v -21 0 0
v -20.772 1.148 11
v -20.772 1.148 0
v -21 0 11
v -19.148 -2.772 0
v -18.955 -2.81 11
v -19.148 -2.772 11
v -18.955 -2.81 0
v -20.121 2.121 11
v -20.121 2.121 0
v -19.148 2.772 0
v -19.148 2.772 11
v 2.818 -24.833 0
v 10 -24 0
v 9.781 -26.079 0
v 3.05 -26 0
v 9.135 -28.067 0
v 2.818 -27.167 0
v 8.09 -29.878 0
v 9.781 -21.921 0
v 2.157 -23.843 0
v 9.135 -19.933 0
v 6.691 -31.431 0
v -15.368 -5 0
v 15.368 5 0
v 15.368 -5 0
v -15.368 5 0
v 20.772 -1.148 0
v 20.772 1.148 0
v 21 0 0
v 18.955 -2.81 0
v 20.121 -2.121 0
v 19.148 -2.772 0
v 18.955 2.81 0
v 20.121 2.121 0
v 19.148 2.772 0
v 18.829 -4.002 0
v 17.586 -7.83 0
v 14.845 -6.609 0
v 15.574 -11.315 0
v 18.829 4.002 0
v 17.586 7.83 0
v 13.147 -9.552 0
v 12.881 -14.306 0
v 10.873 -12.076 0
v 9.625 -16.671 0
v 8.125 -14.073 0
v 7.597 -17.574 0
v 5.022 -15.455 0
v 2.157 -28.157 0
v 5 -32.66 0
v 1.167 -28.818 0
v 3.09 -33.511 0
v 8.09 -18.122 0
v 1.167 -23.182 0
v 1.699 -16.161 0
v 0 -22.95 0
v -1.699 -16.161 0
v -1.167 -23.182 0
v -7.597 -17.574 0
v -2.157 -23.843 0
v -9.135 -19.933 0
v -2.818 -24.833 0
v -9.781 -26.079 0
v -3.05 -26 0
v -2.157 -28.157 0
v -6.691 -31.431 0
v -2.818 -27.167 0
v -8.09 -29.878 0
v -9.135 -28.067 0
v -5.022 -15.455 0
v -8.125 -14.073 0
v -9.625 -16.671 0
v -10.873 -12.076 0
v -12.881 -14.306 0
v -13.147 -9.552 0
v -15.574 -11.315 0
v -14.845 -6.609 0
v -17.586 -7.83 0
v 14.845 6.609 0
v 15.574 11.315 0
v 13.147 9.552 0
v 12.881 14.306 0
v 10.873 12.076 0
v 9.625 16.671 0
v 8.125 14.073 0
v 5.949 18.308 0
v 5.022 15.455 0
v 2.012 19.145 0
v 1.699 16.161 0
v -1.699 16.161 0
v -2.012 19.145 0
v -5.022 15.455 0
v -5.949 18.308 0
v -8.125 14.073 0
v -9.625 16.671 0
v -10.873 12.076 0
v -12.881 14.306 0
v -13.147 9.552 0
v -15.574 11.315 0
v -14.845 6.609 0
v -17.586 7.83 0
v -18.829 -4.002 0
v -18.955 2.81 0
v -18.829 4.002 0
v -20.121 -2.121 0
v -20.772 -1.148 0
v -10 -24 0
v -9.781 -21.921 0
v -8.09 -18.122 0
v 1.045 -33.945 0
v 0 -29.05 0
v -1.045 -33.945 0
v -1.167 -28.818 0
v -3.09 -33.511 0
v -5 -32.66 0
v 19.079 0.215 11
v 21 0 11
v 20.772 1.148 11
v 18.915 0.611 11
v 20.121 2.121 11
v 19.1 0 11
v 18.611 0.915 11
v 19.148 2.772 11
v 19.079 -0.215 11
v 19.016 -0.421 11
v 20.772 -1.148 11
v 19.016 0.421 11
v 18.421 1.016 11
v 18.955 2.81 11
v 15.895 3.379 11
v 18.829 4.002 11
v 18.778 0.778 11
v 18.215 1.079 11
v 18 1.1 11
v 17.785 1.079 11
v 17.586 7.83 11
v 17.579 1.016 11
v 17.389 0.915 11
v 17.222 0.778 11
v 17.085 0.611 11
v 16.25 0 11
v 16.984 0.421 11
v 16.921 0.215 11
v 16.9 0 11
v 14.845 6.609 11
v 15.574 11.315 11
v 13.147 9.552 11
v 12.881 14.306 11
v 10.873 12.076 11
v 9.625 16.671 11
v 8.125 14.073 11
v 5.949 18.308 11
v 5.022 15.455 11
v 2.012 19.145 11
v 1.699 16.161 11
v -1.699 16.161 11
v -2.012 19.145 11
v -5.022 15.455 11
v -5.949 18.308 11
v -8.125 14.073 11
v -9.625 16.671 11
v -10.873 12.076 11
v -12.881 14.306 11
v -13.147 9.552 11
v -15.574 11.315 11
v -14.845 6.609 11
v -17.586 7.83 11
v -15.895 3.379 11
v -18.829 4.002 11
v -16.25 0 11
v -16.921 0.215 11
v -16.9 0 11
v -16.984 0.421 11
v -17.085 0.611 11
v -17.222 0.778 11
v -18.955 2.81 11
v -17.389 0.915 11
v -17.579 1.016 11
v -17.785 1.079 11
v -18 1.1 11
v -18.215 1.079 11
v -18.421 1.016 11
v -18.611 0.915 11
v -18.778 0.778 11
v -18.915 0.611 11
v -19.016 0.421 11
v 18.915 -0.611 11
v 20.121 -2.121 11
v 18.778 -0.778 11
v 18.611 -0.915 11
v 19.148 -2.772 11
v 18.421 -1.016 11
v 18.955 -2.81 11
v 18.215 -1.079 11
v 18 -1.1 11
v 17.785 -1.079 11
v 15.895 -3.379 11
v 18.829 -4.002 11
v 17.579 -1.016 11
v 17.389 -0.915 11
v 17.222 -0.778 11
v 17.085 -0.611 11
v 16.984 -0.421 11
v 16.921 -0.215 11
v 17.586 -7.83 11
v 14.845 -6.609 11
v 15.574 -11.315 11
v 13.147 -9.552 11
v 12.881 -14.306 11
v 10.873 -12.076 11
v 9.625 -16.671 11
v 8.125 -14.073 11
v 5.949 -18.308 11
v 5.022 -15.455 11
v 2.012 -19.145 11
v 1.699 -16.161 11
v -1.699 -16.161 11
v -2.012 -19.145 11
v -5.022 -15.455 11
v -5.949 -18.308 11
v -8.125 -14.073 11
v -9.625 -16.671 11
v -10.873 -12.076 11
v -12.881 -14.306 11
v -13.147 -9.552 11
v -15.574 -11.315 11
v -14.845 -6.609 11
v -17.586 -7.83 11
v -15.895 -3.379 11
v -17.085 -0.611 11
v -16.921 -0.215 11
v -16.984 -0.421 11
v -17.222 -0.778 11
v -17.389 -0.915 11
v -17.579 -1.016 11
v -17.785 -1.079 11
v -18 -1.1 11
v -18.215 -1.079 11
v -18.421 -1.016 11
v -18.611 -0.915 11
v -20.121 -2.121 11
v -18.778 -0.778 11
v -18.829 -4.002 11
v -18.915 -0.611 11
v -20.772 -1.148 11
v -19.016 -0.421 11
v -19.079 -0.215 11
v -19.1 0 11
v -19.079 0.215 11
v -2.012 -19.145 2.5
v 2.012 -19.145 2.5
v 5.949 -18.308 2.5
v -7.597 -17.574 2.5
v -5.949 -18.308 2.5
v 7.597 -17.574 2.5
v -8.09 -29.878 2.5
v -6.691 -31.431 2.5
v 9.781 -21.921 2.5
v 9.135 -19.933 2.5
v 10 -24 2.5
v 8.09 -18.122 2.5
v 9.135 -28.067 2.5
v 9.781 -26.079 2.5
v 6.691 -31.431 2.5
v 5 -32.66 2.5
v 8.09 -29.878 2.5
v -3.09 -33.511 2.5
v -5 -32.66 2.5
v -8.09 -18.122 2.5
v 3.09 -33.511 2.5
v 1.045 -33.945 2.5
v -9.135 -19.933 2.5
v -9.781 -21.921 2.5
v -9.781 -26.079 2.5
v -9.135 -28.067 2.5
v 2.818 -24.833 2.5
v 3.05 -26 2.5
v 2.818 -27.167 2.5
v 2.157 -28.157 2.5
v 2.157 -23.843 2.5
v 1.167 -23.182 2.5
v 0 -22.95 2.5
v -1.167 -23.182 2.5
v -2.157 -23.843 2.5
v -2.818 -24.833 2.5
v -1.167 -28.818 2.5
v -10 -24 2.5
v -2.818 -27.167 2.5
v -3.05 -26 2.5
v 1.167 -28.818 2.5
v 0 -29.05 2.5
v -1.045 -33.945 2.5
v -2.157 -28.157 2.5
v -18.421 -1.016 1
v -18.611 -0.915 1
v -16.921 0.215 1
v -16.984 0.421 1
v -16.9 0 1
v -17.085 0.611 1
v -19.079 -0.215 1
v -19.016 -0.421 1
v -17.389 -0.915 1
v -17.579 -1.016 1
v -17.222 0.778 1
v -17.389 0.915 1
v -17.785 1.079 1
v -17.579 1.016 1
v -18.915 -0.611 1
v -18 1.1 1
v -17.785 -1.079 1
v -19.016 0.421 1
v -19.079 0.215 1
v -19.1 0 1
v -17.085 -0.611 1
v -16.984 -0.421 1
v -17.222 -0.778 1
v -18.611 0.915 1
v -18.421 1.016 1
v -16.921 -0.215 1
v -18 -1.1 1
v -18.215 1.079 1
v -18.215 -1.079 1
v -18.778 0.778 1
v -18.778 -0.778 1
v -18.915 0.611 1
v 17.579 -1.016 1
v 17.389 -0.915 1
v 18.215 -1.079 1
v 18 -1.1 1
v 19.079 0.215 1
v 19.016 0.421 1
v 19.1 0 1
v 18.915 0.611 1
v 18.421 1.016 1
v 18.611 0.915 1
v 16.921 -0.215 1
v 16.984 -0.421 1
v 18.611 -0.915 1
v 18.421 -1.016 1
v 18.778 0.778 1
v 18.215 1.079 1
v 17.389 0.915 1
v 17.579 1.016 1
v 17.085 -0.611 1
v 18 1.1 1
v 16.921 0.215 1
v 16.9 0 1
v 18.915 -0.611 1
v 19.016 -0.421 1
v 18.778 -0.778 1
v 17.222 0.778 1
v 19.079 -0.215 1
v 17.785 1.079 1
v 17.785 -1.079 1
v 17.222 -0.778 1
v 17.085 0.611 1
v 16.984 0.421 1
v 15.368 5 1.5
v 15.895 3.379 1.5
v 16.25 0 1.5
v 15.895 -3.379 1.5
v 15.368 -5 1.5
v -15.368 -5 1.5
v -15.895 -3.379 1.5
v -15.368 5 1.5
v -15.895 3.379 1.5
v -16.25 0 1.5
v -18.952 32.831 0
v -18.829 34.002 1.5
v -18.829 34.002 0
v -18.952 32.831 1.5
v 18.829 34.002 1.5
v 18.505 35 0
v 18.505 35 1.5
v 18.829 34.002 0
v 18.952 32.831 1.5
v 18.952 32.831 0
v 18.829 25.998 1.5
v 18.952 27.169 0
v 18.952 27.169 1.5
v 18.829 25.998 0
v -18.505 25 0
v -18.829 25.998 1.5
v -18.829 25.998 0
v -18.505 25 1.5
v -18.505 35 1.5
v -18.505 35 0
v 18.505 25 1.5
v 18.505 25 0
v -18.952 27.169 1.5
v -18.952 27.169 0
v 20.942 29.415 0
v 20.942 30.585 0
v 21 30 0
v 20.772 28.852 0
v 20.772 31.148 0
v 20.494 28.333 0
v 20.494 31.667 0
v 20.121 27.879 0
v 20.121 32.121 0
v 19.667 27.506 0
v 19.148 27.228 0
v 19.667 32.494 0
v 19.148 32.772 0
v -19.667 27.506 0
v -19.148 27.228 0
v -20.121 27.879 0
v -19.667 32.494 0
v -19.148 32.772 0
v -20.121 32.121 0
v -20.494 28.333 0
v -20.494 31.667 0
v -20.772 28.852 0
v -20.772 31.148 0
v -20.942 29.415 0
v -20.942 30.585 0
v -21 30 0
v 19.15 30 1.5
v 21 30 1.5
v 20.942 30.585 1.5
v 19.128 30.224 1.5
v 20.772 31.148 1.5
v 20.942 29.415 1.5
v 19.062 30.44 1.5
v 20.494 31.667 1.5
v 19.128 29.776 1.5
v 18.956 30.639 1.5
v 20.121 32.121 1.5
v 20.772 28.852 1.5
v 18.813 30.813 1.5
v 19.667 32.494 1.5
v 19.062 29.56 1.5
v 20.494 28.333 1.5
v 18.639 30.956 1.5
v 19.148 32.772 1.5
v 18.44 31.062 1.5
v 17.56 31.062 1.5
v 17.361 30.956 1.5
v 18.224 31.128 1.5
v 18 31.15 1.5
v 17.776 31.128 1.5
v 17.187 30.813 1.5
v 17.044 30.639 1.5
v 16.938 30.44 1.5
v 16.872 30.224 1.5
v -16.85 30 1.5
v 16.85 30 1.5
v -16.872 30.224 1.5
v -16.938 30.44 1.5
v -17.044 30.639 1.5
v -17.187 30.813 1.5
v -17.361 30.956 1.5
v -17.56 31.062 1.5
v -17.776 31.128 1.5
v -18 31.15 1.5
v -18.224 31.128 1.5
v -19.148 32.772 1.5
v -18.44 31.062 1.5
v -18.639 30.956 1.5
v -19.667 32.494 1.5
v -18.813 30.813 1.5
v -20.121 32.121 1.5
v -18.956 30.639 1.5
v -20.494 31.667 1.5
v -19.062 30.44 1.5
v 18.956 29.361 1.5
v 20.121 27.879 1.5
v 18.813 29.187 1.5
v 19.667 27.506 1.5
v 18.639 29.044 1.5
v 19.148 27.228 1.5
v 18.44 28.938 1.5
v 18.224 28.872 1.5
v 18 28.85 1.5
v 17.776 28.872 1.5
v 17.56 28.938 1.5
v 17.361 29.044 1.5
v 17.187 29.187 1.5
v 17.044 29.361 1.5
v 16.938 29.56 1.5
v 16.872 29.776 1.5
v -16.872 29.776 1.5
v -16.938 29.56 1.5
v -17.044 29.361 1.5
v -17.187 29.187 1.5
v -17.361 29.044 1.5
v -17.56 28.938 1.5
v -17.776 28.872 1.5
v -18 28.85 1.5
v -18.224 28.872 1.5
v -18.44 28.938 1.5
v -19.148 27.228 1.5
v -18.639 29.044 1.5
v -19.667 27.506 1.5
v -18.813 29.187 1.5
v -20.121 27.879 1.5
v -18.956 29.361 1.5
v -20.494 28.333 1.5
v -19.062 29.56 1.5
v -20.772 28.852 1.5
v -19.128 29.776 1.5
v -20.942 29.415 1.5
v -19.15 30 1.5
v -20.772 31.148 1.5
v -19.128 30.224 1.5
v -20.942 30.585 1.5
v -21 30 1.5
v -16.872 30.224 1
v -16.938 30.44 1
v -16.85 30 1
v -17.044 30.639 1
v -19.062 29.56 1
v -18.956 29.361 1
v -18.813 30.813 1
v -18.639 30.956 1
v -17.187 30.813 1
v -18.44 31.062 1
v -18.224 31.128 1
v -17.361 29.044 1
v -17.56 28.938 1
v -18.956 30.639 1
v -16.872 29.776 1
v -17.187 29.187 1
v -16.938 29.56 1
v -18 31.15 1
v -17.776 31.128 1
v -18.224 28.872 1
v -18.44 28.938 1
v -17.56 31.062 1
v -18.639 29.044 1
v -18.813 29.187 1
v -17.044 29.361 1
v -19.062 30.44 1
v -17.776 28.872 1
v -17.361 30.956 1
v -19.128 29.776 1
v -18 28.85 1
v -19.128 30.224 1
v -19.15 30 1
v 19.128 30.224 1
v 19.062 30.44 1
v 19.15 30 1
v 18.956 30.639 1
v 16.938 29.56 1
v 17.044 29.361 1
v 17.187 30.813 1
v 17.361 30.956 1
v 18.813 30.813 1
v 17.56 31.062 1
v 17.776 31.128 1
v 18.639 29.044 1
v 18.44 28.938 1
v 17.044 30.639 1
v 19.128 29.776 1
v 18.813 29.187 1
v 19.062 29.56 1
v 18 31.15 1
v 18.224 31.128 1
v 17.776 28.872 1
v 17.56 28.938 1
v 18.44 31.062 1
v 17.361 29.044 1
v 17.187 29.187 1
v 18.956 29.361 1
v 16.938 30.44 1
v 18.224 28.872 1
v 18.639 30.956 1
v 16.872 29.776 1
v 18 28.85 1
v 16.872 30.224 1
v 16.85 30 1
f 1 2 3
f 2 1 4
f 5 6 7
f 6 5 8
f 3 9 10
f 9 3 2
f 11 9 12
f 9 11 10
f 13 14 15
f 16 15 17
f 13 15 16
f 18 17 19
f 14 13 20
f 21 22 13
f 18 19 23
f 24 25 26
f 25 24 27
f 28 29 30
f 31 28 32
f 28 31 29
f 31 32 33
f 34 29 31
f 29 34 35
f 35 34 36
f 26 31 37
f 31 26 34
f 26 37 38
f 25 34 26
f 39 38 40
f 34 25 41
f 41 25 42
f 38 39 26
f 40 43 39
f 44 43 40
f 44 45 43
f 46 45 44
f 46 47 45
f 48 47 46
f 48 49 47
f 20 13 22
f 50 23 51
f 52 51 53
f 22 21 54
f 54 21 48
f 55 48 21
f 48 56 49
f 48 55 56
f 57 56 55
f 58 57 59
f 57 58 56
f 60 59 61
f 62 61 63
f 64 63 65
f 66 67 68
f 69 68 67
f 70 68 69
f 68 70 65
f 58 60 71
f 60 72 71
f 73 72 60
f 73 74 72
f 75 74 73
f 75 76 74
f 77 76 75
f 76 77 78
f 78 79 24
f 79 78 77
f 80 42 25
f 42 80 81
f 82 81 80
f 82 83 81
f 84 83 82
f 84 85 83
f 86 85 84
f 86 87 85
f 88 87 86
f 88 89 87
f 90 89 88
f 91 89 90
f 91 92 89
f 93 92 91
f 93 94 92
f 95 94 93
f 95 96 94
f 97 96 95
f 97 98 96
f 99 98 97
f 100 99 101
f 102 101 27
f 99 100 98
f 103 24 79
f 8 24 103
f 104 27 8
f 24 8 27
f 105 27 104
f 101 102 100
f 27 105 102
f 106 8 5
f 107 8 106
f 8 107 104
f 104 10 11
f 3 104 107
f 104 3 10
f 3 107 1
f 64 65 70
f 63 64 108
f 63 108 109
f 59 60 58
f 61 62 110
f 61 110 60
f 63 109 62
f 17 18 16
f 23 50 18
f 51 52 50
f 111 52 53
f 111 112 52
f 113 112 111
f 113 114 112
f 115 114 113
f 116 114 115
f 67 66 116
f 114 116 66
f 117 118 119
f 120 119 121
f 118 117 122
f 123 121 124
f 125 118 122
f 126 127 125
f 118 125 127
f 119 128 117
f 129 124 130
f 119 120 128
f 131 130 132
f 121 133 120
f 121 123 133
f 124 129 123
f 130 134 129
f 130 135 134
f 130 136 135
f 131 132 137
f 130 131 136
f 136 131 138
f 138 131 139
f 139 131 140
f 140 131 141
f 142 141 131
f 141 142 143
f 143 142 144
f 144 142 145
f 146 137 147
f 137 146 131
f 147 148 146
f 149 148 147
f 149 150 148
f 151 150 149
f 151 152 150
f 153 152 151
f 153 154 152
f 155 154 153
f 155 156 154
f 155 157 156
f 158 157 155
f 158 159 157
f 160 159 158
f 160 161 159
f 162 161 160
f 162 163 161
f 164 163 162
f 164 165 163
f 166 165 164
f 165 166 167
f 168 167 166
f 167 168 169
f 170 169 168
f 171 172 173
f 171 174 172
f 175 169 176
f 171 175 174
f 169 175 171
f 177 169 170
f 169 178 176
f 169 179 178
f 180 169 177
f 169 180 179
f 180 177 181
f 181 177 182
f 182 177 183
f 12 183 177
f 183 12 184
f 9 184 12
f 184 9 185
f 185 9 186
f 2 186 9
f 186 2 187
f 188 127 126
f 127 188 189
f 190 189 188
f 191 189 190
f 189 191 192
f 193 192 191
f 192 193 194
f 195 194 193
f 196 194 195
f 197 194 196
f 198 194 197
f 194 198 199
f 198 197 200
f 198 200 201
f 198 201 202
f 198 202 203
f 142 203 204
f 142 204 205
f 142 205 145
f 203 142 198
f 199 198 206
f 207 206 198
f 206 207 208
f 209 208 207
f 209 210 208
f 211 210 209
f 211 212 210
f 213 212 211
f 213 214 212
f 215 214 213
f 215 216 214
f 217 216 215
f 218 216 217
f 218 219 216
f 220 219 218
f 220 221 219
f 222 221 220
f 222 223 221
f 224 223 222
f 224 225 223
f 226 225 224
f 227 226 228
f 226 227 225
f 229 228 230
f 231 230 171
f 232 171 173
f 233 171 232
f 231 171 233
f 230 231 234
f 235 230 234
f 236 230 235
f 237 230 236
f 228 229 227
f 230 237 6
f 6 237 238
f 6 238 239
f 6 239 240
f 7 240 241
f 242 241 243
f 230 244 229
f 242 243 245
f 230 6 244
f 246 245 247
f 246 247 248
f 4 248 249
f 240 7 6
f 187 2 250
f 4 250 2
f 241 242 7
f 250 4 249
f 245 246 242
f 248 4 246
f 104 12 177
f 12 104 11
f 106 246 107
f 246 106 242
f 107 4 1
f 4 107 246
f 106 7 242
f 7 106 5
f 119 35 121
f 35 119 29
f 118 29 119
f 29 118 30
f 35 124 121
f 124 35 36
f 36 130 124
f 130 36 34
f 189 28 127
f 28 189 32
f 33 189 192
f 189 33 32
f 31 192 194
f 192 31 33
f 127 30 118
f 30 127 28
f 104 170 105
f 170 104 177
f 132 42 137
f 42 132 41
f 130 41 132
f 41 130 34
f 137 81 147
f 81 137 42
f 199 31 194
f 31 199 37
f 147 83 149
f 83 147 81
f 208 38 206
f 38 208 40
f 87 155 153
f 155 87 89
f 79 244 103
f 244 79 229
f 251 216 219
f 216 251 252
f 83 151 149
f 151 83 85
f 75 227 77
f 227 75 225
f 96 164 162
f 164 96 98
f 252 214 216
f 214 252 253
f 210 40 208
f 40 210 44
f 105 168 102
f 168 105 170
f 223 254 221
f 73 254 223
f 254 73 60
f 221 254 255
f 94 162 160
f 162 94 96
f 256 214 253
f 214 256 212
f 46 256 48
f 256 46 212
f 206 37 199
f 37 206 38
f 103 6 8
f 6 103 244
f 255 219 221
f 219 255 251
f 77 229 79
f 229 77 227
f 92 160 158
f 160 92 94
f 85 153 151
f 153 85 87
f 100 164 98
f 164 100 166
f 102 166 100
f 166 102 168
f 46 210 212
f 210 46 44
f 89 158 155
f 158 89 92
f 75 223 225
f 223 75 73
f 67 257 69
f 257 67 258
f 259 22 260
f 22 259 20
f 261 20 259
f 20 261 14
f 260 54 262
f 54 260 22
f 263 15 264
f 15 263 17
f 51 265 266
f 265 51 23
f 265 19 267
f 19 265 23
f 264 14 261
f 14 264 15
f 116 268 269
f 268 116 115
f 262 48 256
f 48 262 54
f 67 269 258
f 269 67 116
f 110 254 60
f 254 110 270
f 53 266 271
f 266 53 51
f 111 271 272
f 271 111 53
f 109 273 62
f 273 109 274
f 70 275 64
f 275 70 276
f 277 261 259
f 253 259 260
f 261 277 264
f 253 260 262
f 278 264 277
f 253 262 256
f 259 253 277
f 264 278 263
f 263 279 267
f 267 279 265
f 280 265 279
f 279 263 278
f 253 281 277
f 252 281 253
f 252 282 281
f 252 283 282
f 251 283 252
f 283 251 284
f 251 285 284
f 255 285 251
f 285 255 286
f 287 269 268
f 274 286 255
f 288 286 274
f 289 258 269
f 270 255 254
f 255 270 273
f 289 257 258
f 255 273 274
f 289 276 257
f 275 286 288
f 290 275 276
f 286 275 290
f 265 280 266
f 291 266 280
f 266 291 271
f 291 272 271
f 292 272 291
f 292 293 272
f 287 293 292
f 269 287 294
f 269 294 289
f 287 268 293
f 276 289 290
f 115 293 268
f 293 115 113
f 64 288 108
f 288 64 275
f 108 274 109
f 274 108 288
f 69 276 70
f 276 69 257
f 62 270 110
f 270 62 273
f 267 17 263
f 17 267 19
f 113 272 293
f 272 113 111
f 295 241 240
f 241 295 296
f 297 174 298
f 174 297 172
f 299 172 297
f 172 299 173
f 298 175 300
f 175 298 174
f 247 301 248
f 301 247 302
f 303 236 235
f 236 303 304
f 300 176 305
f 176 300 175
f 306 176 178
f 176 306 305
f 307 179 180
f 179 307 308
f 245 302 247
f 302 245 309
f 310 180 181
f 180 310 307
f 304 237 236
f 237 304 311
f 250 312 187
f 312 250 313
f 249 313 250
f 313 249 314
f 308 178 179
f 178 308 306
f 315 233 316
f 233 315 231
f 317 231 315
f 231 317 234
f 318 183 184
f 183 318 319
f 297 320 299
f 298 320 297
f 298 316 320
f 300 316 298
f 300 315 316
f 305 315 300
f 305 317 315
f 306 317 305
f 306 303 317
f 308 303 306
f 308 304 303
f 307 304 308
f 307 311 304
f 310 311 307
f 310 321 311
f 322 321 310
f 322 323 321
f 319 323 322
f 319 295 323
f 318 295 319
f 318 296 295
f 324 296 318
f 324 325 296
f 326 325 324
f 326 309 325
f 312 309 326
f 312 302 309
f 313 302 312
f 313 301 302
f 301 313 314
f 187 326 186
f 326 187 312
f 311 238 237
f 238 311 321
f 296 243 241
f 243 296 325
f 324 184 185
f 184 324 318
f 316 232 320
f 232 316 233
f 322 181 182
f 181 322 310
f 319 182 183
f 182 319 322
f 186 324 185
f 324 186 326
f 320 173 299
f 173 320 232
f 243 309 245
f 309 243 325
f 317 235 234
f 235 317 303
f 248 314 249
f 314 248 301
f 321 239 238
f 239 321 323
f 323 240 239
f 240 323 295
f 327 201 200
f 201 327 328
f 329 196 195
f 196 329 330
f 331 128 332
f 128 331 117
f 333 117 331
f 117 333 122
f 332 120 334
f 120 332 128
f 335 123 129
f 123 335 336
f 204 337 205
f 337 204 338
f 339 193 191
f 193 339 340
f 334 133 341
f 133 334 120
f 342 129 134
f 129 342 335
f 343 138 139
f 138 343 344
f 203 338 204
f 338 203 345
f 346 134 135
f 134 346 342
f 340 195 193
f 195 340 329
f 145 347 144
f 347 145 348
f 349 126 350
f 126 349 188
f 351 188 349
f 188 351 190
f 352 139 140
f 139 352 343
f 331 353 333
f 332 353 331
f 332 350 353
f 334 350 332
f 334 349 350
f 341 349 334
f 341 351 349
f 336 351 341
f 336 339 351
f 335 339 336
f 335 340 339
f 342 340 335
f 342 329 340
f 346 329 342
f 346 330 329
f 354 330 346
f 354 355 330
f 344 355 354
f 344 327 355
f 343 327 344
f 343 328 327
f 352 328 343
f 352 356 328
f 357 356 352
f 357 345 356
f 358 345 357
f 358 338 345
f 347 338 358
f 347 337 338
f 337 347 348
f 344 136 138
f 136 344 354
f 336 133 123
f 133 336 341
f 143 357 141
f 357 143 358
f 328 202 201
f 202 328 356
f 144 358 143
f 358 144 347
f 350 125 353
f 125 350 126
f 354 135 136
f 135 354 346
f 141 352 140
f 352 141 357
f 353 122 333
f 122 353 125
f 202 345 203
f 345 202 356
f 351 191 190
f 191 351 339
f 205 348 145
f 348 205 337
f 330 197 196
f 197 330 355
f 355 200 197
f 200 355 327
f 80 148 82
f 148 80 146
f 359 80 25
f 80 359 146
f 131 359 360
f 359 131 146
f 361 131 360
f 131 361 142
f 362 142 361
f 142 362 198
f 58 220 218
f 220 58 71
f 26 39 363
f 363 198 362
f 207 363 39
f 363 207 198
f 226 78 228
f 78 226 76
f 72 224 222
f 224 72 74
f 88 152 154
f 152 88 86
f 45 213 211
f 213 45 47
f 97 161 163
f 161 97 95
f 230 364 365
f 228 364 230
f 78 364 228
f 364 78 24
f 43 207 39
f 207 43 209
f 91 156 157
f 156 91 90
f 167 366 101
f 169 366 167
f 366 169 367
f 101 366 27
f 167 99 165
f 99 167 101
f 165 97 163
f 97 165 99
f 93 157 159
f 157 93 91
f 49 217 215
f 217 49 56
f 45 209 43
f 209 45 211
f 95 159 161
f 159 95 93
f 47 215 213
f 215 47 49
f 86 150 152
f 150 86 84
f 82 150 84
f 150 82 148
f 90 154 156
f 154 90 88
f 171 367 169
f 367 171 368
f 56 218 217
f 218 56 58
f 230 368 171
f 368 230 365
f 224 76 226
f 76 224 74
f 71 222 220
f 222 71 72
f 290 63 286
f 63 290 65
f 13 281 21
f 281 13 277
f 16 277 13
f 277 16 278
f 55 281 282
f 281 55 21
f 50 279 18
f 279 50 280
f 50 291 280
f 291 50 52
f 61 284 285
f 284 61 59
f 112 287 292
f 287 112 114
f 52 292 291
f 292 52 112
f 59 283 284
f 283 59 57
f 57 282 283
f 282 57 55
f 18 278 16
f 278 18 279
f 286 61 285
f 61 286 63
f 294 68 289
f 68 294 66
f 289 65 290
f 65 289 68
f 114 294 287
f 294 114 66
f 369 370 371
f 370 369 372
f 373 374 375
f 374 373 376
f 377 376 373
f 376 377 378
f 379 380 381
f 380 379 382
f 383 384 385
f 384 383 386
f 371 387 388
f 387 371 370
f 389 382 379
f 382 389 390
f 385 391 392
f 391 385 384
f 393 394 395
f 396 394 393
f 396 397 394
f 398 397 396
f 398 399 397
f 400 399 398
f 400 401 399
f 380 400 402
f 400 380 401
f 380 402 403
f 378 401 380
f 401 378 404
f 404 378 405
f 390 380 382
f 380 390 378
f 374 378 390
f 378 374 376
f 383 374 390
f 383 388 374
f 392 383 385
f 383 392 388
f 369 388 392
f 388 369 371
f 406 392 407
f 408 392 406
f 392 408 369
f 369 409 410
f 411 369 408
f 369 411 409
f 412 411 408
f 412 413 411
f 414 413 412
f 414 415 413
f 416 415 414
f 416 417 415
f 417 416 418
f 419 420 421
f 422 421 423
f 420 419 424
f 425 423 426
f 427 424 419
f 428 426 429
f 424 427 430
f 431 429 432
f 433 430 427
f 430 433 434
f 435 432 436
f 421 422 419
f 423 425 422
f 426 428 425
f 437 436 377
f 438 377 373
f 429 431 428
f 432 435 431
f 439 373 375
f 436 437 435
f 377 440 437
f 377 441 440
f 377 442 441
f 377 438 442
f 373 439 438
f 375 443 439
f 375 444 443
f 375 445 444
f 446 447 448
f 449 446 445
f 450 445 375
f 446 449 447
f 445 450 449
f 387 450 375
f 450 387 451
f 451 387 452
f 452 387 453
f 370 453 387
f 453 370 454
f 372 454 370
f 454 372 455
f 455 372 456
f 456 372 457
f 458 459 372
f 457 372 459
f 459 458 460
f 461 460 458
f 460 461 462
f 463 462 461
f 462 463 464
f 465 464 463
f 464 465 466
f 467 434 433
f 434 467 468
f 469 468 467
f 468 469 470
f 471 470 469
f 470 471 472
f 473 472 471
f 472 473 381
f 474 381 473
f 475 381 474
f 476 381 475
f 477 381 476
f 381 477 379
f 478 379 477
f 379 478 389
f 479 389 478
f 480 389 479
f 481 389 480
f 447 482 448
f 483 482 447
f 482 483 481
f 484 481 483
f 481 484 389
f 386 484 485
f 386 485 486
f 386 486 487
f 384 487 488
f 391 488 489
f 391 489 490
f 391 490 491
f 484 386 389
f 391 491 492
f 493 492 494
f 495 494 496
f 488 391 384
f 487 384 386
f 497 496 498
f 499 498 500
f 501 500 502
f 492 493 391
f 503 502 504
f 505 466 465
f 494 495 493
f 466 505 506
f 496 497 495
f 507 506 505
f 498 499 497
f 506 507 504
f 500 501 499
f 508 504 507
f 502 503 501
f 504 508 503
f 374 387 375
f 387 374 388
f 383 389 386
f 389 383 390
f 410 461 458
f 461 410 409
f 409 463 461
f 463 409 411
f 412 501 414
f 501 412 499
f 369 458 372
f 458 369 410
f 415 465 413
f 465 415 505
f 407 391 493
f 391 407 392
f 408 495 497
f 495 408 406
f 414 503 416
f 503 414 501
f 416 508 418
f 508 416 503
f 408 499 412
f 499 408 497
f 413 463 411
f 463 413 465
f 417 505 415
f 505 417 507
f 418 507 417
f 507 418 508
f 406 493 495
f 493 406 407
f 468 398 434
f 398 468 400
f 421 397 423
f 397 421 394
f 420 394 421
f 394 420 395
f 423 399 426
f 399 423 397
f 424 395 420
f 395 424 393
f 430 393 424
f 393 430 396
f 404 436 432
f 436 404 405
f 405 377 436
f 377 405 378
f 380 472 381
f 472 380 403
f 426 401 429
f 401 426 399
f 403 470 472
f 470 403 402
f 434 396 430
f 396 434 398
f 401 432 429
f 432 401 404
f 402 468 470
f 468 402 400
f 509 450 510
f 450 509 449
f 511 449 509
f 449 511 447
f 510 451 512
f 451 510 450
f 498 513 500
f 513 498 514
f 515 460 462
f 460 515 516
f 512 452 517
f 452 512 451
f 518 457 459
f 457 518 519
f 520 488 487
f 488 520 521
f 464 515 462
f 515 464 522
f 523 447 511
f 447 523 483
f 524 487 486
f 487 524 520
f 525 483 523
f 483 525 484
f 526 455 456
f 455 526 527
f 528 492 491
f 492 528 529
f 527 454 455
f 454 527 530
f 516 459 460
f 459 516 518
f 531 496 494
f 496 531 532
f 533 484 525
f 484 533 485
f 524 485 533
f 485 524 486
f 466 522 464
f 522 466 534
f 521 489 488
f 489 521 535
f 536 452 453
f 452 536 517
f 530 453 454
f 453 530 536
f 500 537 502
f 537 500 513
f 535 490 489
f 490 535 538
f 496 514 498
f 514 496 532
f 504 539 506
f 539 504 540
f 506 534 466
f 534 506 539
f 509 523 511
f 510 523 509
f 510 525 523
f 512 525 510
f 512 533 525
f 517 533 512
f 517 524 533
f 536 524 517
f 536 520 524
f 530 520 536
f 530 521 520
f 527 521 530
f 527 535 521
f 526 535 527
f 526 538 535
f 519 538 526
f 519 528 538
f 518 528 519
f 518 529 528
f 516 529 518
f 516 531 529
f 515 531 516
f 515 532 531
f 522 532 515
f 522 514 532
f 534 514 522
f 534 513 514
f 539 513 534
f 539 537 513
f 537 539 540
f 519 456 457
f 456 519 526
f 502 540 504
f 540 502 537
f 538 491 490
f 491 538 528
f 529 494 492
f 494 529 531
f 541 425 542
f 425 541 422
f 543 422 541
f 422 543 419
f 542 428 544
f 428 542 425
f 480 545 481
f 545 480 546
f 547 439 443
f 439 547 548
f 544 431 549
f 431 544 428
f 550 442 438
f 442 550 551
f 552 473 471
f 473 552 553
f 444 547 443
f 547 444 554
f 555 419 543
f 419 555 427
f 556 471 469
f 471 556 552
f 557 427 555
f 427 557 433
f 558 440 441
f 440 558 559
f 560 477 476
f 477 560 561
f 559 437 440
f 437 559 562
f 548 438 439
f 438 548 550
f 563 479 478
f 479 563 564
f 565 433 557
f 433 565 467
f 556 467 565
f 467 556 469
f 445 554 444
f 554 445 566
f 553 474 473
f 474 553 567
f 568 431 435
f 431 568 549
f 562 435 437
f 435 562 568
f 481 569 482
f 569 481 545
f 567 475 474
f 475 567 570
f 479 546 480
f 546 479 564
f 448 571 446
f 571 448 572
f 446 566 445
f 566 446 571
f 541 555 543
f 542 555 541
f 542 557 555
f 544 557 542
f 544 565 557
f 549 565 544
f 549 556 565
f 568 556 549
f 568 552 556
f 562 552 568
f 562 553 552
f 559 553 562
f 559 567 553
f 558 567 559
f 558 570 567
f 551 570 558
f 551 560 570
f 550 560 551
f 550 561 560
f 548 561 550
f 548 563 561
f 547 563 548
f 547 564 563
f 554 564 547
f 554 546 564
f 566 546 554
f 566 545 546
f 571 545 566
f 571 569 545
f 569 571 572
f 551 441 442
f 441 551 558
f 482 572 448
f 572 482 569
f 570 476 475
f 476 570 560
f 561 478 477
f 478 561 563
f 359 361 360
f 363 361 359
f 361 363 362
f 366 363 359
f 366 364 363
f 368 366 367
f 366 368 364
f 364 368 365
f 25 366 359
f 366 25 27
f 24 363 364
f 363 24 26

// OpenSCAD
d = 32.5;
h = 9;
screw_d = 6.1;

difference() {
    union() {
        cylinder(h+2, d=d+6);
        translate([0, -24, 0])
            cylinder(2.5, d=20);
        for (i = [-18, 18]) {
            translate([i, 0, 0])
                cylinder(h+2, d=6, $fn=16);
        }
    }
    translate([0, 0, -1])
        cylinder(h+6, d=d);
    // screw holes for top bar
    for (i = [-18, 18]) {
        color("red")
        translate([i, 0, 1])
            cylinder(h+2, d=2.2, $fn=32);
    }
    // big screw hole
    color("red")
    translate([0, -26, -1])
        cylinder(10, d=screw_d, $fn=16);
}
translate([0, 0, .75])
    cube([d, 10, 1.5], center=true);

// top bar
translate([0, 30, 0])
difference() {
    union() {
        intersection() {
            cylinder(h+2, d=d+6);
            translate([0, 0, .75])
                cube([2*d, 10, 1.5], center=true);
        }
        for (i = [-18, 18]) {
            translate([i, 0, 0])
                cylinder(1.5, d=6, $fn=32);
        }
    }
    // screw holes
    for (i = [-18, 18]) {
        color("red")
        translate([i, 0, 1])
            cylinder(h+2, d=2.3, $fn=32);
    }
}
